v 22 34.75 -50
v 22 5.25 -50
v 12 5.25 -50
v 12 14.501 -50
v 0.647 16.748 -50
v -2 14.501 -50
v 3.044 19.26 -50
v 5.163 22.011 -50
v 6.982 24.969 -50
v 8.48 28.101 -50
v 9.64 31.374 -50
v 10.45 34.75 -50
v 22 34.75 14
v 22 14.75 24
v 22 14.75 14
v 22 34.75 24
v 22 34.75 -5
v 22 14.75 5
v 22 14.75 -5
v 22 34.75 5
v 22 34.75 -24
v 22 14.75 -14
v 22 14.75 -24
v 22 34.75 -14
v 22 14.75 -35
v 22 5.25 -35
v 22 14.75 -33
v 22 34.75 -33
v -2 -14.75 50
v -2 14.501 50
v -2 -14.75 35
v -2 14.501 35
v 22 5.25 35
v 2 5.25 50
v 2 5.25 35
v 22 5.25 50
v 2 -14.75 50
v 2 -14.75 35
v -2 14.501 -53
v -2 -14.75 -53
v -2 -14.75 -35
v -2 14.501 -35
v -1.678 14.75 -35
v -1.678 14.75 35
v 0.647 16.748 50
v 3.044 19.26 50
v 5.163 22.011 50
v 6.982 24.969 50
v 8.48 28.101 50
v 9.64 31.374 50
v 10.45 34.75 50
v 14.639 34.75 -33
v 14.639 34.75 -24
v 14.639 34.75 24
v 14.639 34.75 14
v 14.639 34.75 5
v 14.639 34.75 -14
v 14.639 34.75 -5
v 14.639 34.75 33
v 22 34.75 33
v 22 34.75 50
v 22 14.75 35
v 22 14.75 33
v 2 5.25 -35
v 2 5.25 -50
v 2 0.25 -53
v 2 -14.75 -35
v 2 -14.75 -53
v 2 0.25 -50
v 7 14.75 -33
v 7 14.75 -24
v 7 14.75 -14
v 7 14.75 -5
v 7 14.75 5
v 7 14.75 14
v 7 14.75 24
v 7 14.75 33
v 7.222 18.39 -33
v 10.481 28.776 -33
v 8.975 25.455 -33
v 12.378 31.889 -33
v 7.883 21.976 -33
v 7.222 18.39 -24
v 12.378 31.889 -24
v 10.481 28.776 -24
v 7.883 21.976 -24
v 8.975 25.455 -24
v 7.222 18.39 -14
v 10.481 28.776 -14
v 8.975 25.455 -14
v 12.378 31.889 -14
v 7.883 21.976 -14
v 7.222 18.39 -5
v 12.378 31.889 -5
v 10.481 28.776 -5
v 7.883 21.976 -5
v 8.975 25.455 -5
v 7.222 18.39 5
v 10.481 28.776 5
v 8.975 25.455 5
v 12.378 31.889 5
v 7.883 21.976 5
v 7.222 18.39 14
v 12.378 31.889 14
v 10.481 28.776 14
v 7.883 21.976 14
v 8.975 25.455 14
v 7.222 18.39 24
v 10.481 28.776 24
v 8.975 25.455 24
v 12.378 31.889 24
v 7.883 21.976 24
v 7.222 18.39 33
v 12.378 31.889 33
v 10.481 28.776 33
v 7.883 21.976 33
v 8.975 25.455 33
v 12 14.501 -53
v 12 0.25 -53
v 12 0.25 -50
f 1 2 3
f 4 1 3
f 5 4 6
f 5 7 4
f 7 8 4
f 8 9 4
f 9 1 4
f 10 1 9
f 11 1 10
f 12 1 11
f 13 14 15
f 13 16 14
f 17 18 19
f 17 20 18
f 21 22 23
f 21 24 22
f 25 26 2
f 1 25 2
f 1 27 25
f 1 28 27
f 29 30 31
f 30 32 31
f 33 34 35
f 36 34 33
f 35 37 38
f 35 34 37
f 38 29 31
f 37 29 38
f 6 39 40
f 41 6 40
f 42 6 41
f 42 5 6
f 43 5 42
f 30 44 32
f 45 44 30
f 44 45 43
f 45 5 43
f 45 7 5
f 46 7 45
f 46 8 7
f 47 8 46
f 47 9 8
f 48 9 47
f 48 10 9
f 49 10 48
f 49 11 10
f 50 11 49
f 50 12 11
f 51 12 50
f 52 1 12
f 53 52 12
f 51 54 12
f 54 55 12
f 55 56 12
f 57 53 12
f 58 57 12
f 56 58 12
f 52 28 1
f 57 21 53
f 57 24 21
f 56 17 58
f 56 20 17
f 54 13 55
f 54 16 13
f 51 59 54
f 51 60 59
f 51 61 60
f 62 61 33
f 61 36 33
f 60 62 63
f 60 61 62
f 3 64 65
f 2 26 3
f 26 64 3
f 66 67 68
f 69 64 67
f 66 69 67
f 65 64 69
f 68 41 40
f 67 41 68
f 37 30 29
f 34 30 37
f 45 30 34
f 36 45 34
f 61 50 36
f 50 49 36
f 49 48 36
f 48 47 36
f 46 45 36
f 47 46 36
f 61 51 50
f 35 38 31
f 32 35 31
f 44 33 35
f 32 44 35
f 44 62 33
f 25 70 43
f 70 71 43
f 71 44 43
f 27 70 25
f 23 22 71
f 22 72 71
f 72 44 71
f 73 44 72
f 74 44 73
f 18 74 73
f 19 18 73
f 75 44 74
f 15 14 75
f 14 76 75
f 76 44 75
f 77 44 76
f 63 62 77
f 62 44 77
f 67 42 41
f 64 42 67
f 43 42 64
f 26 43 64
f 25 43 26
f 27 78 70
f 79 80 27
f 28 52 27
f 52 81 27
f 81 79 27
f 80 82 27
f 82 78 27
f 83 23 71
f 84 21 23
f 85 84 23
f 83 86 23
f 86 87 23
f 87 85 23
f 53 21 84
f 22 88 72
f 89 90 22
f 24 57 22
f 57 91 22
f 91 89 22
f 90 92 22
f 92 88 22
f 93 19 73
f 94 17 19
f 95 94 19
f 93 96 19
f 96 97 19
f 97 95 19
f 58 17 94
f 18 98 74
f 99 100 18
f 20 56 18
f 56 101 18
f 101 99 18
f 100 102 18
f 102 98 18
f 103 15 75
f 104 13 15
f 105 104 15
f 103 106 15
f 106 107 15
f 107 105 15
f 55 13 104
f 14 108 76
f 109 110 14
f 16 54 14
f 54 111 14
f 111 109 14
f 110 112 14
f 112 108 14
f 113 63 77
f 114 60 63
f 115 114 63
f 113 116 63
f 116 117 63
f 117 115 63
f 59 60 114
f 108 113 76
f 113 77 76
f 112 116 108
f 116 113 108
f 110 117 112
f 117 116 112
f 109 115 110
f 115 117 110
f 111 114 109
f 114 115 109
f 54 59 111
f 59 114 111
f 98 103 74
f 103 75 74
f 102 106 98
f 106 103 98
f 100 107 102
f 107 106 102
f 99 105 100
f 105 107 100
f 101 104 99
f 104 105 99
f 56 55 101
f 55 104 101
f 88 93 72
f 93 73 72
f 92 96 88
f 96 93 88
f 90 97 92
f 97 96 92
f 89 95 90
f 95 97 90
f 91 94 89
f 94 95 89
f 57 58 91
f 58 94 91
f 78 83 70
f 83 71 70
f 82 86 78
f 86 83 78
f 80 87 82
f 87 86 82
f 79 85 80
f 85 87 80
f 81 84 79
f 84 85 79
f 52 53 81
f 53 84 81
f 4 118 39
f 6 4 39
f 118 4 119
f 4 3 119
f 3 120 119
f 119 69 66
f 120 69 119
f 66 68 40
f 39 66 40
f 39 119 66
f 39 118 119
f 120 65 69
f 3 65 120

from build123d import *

# Parameters (mm, degrees)
BOSS_EXTRUDE1_DEPTH      = 50
BOSS_EXTRUDE1_DEPTH_BACK = 50
CUT_EXTRUDE1_DEPTH       = 66.448930473
CUT_EXTRUDE1_DEPTH_BACK  = 66.448930473
SKETCH2_W                = 70
SKETCH2_H                = 29.5
SKETCH5_W                = 15
SKETCH5_H                = 9
CUT_EXTRUDE2_DEPTH       = 20
BOSS_EXTRUDE3_REACH      = 110.128
BOSS_EXTRUDE4_DEPTH      = 3


with BuildPart() as part:
    # Sketch1 → Boss-Extrude1 (new, two sides: drawn at the far end of the back side and taken through both)
    with BuildSketch(Plane.XY.offset(-BOSS_EXTRUDE1_DEPTH_BACK)):
        with BuildLine():
            Line((-2, -14.75), (2, -14.75))
            Line((2, -14.75), (2, 5.25))
            Line((2, 5.25), (22, 5.25))
            Line((22, 5.25), (22, 14.75))
            Line((22, 14.75), (22, 34.75))
            Line((22, 34.75), (10.449961479, 34.75))
            ThreePointArc((10.449961479, 34.75), (6.111442266, 23.465706156), (-2, 14.501190503))
            Line((-2, 14.501190503), (-2, -14.75))
        make_face()
    extrude(amount=BOSS_EXTRUDE1_DEPTH + BOSS_EXTRUDE1_DEPTH_BACK)

    # Sketch2 → Cut-Extrude1 (cut, two sides: drawn at the far end of the back side and taken through both)
    with BuildSketch(Plane(origin=(-2, 0, 0), x_dir=(0, 0, -1), z_dir=(1, 0, 0)).offset(-CUT_EXTRUDE1_DEPTH_BACK)):
        Rectangle(SKETCH2_W, SKETCH2_H)
    extrude(amount=CUT_EXTRUDE1_DEPTH + CUT_EXTRUDE1_DEPTH_BACK, mode=Mode.SUBTRACT)

    # Sketch5 → Cut-Extrude2 (cut)
    with BuildSketch(Plane(origin=(0, 34.75, 0), x_dir=(1, 0, 0), z_dir=(0, 1, 0))):
        with Locations((14.5, -28.5)):
            Rectangle(SKETCH5_W, SKETCH5_H)
        with Locations((14.5, -9.5)):
            Rectangle(SKETCH5_W, SKETCH5_H)
        with Locations((14.5, 9.5)):
            Rectangle(SKETCH5_W, SKETCH5_H)
        with Locations((14.5, 28.5)):
            Rectangle(SKETCH5_W, SKETCH5_H)
    extrude(amount=-CUT_EXTRUDE2_DEPTH, mode=Mode.SUBTRACT)

    # Boss-Extrude3: up to this face of the body (flat: up to its plane)
    boss_extrude3_end = Plane(part.part.faces().sort_by_distance((10.585369563, 14.996232635, -50))[0])
    # Sketch6 → Boss-Extrude3 (add, up to the picked face)
    with BuildSketch(Plane.XY.offset(50), mode=Mode.PRIVATE) as boss_extrude3_sk1:
        with BuildLine():
            Line((14.639320225, 34.75), (10.449961479, 34.75))
            ThreePointArc((10.449961479, 34.75), (9.109168973, 29.740022443), (7, 25.001984252))
            Line((7, 25.001984252), (7, 14.75))
            ThreePointArc((7, 14.75), (8.974829231, 25.454662693), (14.639320225, 34.75))
        make_face()
    boss_extrude3_tool1 = split(extrude(boss_extrude3_sk1.sketch, amount=-BOSS_EXTRUDE3_REACH, mode=Mode.PRIVATE), bisect_by=boss_extrude3_end, keep=Keep.BOTH, mode=Mode.PRIVATE)
    add(boss_extrude3_tool1.solids().sort_by(Axis((9.906803, 28.936431, 50), (0, 0, -1)))[0])

    # Sketch8 → Boss-Extrude4 (add)
    with BuildSketch(Plane(origin=(0, 0, -50), x_dir=(-1, 0, 0), z_dir=(0, 0, -1))):
        Polygon((-12, 0.25), (-2, 0.25), (-2, -14.75), (2, -14.75), (2, 14.501190503), (-12, 14.501190503), align=None)
    extrude(amount=BOSS_EXTRUDE4_DEPTH)


solid = part.part
